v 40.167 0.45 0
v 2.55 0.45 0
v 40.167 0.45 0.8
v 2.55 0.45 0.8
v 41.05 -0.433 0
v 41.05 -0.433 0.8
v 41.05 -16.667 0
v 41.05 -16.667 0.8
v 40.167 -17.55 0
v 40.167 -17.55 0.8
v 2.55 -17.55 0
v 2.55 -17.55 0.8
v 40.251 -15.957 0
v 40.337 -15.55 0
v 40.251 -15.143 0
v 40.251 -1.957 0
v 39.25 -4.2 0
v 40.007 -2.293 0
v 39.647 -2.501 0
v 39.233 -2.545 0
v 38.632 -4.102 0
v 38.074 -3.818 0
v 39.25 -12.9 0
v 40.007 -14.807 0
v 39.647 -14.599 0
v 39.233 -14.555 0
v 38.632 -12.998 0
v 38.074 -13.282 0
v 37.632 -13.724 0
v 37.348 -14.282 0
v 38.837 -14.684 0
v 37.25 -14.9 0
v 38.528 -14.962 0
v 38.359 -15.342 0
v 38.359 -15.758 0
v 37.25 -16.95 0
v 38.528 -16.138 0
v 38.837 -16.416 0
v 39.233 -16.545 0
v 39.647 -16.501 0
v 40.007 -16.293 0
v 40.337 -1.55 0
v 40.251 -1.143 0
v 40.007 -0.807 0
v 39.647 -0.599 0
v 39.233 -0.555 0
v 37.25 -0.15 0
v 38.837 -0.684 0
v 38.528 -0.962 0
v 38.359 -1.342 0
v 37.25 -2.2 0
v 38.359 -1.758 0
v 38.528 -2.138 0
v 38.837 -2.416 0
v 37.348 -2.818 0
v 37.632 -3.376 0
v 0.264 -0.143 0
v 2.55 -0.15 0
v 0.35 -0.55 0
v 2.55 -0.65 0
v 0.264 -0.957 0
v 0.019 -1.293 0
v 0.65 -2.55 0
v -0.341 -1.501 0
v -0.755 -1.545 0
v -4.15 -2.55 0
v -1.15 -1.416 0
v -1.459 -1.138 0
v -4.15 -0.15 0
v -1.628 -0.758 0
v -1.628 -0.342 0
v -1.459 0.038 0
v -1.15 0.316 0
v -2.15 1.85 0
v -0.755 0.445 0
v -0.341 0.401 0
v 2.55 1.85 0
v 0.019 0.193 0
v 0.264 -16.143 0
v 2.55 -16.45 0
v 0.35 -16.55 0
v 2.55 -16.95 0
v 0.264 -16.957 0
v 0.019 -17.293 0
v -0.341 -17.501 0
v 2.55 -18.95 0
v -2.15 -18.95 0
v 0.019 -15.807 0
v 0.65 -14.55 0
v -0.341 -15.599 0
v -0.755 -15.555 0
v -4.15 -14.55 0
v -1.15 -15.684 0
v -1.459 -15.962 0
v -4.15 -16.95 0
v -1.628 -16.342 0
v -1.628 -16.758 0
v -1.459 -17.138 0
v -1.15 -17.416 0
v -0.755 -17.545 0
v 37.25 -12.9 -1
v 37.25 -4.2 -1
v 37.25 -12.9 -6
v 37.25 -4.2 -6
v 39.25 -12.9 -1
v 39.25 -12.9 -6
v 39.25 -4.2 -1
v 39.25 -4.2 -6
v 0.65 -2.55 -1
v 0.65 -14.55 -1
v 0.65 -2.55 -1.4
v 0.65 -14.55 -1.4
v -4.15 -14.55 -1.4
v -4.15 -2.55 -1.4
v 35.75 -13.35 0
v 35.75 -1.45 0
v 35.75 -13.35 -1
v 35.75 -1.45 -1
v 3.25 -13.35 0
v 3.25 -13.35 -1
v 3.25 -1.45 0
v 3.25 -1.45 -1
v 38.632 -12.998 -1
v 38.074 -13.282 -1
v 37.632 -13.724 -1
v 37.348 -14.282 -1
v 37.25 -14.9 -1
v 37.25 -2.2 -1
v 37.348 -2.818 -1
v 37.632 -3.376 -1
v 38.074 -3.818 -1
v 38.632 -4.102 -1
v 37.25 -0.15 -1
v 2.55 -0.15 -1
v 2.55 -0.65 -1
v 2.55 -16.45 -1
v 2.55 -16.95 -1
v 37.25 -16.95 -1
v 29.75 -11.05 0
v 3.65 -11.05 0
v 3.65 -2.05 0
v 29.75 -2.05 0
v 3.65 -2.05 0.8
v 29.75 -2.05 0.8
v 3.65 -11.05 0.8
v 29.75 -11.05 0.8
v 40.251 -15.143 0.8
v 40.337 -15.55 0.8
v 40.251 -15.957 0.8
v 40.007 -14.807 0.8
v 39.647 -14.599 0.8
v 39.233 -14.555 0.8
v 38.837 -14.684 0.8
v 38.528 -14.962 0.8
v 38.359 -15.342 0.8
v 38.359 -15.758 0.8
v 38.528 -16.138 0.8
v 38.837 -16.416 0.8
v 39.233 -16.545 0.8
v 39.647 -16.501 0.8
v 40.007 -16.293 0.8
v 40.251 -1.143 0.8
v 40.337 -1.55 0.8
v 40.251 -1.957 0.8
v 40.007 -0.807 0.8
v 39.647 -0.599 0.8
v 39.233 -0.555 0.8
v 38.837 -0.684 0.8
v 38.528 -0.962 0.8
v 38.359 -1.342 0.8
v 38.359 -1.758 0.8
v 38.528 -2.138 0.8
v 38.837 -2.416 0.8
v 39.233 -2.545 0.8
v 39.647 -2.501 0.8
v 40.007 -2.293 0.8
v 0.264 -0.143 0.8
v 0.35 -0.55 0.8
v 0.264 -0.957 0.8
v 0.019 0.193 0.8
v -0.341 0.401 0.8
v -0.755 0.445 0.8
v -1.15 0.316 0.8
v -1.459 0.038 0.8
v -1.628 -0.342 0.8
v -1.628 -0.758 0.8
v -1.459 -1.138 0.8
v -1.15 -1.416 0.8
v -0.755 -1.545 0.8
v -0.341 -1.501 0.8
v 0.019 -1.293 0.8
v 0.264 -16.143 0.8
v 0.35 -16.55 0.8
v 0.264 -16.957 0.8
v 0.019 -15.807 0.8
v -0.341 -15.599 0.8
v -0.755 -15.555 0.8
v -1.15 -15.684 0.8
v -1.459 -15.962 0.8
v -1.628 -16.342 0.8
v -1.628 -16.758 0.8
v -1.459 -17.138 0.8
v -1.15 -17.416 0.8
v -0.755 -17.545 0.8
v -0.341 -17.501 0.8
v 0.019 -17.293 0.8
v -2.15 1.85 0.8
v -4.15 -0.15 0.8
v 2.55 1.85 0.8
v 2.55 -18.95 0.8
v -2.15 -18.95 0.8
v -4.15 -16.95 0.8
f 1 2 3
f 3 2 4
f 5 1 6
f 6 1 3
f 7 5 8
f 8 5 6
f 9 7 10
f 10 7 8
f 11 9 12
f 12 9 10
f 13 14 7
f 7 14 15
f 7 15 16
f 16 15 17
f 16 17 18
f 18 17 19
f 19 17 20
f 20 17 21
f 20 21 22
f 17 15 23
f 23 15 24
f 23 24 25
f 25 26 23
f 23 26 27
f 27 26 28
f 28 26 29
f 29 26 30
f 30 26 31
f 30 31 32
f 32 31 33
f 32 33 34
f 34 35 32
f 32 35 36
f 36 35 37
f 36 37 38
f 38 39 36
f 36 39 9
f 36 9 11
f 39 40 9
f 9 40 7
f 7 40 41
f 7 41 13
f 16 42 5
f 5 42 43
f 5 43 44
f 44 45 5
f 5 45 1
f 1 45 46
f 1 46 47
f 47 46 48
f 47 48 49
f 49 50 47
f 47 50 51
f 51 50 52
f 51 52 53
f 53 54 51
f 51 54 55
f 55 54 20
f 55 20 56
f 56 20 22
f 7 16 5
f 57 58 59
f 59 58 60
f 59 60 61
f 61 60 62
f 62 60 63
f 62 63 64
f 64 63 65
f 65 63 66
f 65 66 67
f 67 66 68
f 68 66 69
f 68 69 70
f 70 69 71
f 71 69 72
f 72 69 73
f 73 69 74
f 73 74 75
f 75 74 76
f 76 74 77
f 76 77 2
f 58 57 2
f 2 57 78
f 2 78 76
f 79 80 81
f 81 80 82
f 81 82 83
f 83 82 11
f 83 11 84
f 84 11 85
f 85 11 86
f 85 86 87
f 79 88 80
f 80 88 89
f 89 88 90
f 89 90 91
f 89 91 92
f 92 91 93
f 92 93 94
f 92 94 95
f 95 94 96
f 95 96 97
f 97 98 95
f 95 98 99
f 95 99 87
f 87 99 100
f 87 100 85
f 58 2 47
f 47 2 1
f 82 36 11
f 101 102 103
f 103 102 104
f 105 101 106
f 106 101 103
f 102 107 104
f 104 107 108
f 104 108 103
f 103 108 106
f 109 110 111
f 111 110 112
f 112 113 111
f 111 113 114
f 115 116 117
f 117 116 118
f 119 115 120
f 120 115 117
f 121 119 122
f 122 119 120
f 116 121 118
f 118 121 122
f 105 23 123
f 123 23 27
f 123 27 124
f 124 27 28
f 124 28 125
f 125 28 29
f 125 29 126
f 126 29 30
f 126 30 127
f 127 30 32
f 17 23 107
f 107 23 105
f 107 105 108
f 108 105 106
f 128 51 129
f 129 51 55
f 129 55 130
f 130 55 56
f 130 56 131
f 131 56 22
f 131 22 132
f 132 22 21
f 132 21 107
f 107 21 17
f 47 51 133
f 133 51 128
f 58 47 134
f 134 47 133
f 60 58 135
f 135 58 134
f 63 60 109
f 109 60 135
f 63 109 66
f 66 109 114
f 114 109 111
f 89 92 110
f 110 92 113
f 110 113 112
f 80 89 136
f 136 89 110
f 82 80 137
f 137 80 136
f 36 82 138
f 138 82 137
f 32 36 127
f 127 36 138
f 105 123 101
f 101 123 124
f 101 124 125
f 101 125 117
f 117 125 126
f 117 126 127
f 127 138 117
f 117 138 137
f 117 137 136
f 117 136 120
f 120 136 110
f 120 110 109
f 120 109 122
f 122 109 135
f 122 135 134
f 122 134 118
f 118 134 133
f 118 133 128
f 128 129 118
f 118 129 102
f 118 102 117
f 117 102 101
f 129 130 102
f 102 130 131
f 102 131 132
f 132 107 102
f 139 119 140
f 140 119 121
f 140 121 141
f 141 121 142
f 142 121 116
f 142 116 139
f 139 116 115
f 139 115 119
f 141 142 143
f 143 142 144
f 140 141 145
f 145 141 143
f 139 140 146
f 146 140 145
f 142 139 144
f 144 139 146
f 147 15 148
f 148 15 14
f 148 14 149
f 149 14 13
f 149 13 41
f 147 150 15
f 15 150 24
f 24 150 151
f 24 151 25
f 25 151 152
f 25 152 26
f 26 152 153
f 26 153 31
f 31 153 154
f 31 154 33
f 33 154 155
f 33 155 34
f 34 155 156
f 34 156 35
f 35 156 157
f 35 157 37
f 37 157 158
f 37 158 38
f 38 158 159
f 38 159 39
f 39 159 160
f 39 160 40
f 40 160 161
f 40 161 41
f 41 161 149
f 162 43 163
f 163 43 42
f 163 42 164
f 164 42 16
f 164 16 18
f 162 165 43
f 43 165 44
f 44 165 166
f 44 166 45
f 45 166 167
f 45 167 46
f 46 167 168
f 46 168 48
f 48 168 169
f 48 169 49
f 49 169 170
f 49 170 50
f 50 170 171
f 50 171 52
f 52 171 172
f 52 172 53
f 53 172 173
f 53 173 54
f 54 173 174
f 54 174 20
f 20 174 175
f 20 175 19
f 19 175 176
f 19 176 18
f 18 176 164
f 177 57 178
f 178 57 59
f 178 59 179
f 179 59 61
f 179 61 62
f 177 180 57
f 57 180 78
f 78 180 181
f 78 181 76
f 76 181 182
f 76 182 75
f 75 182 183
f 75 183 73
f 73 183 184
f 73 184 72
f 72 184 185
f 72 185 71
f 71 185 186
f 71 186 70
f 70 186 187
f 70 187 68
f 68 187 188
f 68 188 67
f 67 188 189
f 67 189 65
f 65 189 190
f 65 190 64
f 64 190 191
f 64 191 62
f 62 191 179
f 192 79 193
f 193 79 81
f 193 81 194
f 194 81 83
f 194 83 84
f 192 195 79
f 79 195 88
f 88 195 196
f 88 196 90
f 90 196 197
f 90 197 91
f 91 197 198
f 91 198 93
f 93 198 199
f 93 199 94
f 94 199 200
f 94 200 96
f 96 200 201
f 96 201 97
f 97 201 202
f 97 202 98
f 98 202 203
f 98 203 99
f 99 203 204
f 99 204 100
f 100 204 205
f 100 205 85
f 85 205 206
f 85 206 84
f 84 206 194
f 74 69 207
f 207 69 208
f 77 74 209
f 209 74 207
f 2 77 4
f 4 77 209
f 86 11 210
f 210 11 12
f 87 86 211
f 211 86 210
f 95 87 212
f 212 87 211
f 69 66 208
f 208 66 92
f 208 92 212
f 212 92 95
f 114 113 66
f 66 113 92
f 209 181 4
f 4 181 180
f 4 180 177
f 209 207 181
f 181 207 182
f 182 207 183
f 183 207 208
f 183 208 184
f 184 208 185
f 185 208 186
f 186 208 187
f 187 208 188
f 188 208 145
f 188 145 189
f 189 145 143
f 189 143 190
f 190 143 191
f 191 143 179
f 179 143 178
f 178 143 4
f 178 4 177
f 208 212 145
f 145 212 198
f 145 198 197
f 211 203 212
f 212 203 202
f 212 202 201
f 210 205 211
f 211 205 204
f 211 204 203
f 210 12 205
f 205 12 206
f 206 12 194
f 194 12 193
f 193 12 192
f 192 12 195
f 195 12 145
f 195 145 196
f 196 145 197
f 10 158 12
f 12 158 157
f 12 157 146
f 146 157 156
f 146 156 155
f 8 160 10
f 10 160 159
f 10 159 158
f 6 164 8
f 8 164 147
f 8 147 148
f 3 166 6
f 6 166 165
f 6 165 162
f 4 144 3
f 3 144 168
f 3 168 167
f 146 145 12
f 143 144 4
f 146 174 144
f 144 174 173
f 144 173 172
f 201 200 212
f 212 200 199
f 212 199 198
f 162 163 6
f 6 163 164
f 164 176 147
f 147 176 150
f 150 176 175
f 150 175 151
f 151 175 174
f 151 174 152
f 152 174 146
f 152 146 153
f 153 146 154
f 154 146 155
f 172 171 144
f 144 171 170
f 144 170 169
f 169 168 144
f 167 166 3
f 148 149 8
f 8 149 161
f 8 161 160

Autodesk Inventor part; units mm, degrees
ref_plane "YZ Plane" through (0, 0, 0) normal (1, 0, 0) x (0, 1, 0)
ref_plane "XZ Plane" through (0, 0, 0) normal (0, 1, 0) x (-1, 0, 0)
ref_plane "XY Plane" through (0, 0, 0) normal (0, 0, 1) x (1, 0, 0)
sketch "Эскиз1" plane through (0, 0, 0) normal (0, 0, 1) x (1, 0, 0)
  line L0 (40.25, 0.65) -> (37.25, 0.65) projected
  line L1 (37.25, 0.65) -> (37.25, -2.2) projected
  arc A0 (37.25, -2.2) -> (39.25, -4.2) centre (39.25, -2.2) ccw projected
  line L2 (39.25, -4.2) -> (39.25, -12.9) projected
  arc A1 (39.25, -12.9) -> (37.25, -14.9) centre (39.25, -14.9) ccw projected
  line L3 (37.25, -14.9) -> (37.25, -17.75) projected
  line L4 (37.25, -17.75) -> (40.25, -17.75) projected
  line L5 (40.25, -17.75) -> (41.25, -16.75) projected
  line L6 (41.25, -16.75) -> (41.25, -0.35) projected
  line L7 (41.25, -0.35) -> (40.25, 0.65) projected
  circle A2 centre (39.3375, -15.55) radius 1 projected
  circle A3 centre (39.3375, -1.55) radius 1 projected
  line L8 (2.55, -18.95) -> (2.55, -17.75) projected
  line L9 (2.55, -17.75) -> (2.55, -16.45) projected
  line L10 (0.65, -14.55) -> (2.55, -16.45) projected
  line L11 (-4.15, -14.55) -> (0.65, -14.55) projected
  line L12 (-4.15, -14.55) -> (-4.15, -16.95) projected
  line L13 (-4.15, -16.95) -> (-2.15, -18.95) projected
  line L14 (-2.15, -18.95) -> (2.55, -18.95) projected
  circle A4 centre (-0.65, -16.55) radius 1 projected
  line L15 (2.55, 0.65) -> (2.55, 1.85) projected
  line L16 (2.55, 1.85) -> (-2.15, 1.85) projected
  line L17 (-2.15, 1.85) -> (-4.15, -0.15) projected
  line L18 (-4.15, -0.15) -> (-4.15, -2.55) projected
  line L19 (0.65, -2.55) -> (-4.15, -2.55) projected
  line L20 (2.55, -0.65) -> (0.65, -2.55) projected
  line L21 (2.55, -0.65) -> (2.55, 0.65) projected
  circle A5 centre (-0.65, -0.55) radius 1 projected
  line L22 (2.55, 0.65) -> (40.25, 0.65) projected
  line L23 (40.25, -17.75) -> (2.55, -17.75) projected
  line L24 (-4.15, -14.55) -> (-4.15, -2.55) projected
  point P0 (0, 0)
extrude "Выдавливание1" add sketch "Эскиз1" along normal blind 0.8
sketch "Эскиз2" plane through (0, 0, 0.8) normal (0, 0, 1) x (1, 0, 0)
  line L0 (3.65, -11.05) -> (29.75, -11.05)
  line L1 (29.75, -11.05) -> (29.75, -2.05)
  line L2 (29.75, -2.05) -> (3.65, -2.05)
  line L3 (3.65, -2.05) -> (3.65, -11.05)
  line L4 (40.25, 0.65) -> (2.55, 0.65) projected
  line L5 (41.25, -16.75) -> (41.25, -0.35) projected
  point P0 (0, 0)
  dimension "d2" = 9
  dimension "d3" = 26.1
  dimension "d4" = 2.7
  dimension "d5" = 11.5
extrude "Выдавливание2" cut sketch "Эскиз2" against normal through all
sketch "Эскиз3" plane through (0, 0, 0) normal (0, 0, -1) x (-1, 0, 0)
  line L0 (-40.25, 0.65) -> (-37.25, 0.65) projected
  line L1 (-37.25, 0.65) -> (-37.25, -2.2) projected
  arc A0 (-39.25, -4.2) -> (-37.25, -2.2) centre (-39.25, -2.2) ccw projected
  line L2 (-39.25, -4.2) -> (-39.25, -12.9) projected
  arc A1 (-37.25, -14.9) -> (-39.25, -12.9) centre (-39.25, -14.9) ccw projected
  line L3 (-37.25, -14.9) -> (-37.25, -17.75) projected
  line L4 (-37.25, -17.75) -> (-40.25, -17.75) projected
  line L5 (-40.25, -17.75) -> (-41.25, -16.75) projected
  line L6 (-41.25, -16.75) -> (-41.25, -0.35) projected
  line L7 (-41.25, -0.35) -> (-40.25, 0.65) projected
  circle A2 centre (-39.3375, -15.55) radius 1 projected
  circle A3 centre (-39.3375, -1.55) radius 1 projected
  line L8 (-2.55, 0.65) -> (-2.55, 1.85) projected
  line L9 (-2.55, 1.85) -> (2.15, 1.85) projected
  line L10 (2.15, 1.85) -> (4.15, -0.15) projected
  line L11 (4.15, -0.15) -> (4.15, -2.55) projected
  line L12 (-0.65, -2.55) -> (4.15, -2.55) projected
  line L13 (-2.55, -0.65) -> (-0.65, -2.55) projected
  line L14 (-2.55, -0.65) -> (-2.55, 0.65) projected
  circle A4 centre (0.65, -0.55) radius 1 projected
  line L15 (-2.55, -18.95) -> (-2.55, -17.75) projected
  line L16 (-2.55, -17.75) -> (-2.55, -16.45) projected
  line L17 (-0.65, -14.55) -> (-2.55, -16.45) projected
  line L18 (4.15, -14.55) -> (-0.65, -14.55) projected
  line L19 (4.15, -14.55) -> (4.15, -16.95) projected
  line L20 (4.15, -16.95) -> (2.15, -18.95) projected
  line L21 (2.15, -18.95) -> (-2.55, -18.95) projected
  circle A5 centre (0.65, -16.55) radius 1 projected
  line L22 (-2.55, -17.75) -> (-40.25, -17.75) projected
  line L23 (4.15, -2.55) -> (4.15, -14.55)
  line L24 (4.15, -0.15) -> (4.15, -16.95) projected
  line L25 (-3.25, -13.35) -> (-35.75, -13.35)
  line L26 (-35.75, -13.35) -> (-35.75, -1.45)
  line L27 (-35.75, -1.45) -> (-3.25, -1.45)
  line L28 (-3.25, -1.45) -> (-3.25, -13.35)
  line L29 (-29.75, -11.05) -> (-29.75, -2.05) projected
  line L30 (-3.65, -11.05) -> (-29.75, -11.05) projected
  line L31 (-3.65, -2.05) -> (-3.65, -11.05) projected
  line L32 (-29.75, -2.05) -> (-3.65, -2.05) projected
  line L33 (2.15, 1.85) -> (-43.25, 1.85) projected
  line L34 (-43.25, -18.95) -> (2.15, -18.95) projected
  line L35 (-37.25, -0.15) -> (-2.55, -0.15)
  line L36 (-37.25, -16.95) -> (-2.55, -16.95)
  point P0 (0, 0)
  dimension "d13" = 6
  dimension "d15" = 0.4
  dimension "d17" = 2.3
  dimension "d18" = 0.6
  dimension "d21" = 2
  dimension "d22" = 2
extrude "Выдавливание3" add sketch "Эскиз3" along normal blind 1 contours L35 L14 L13 L12 L23 L18 L17 L16 L36 L3 A1 L2 A0 L1
sketch "Эскиз4" plane through (0, 0, -1) normal (0, 0, -1) x (-1, 0, 0)
  line L0 (-0.65, -2.55) -> (4.15, -2.55) projected
  line L1 (-2.55, -16.45) -> (-0.65, -14.55) projected
  line L2 (4.15, -2.55) -> (-0.65, -2.55)
  line L3 (-0.65, -2.55) -> (-0.65, -14.55)
  line L4 (-0.65, -14.55) -> (4.15, -14.55)
  line L5 (4.15, -14.55) -> (4.15, -2.55)
  point P0 (0, 0)
extrude "Выдавливание4" add sketch "Эскиз4" along normal blind 0.4
sketch "Эскиз5" plane through (0, 0, -1) normal (0, 0, -1) x (-1, 0, 0)
  line L0 (-39.25, -4.2) -> (-39.25, -12.9) projected
  line L1 (-39.25, -4.2) -> (-37.25, -4.2)
  line L2 (-37.25, -4.2) -> (-37.25, -12.9)
  line L3 (-37.25, -12.9) -> (-39.25, -12.9)
  line L4 (-39.25, -12.9) -> (-39.25, -4.2)
  point P0 (0, 0)
  dimension "d25" = 2
extrude "Выдавливание5" add sketch "Эскиз5" along normal blind 5
sketch "Эскиз7" plane through (0, 0, 0.8) normal (0, 0, 1) x (1, 0, 0)
  line L0 (2.55, -17.75) -> (40.25, -17.75) projected
  line L1 (2.55, -17.75) -> (2.55, -17.55)
  line L2 (2.55, -17.55) -> (40.1672, -17.55)
  line L3 (40.1672, -17.55) -> (41.05, -16.6672)
  line L4 (41.05, -16.6672) -> (41.05, -8.55)
  line L5 (41.25, -16.75) -> (41.25, -0.35) projected
  line L6 (41.25, -8.55) -> (-4.15, -8.55)
  line L7 (-4.15, -0.15) -> (-4.15, -16.95) projected
  line L8 (40.25, -17.75) -> (41.25, -16.75) projected
  line L9 (2.55, 0.45) -> (40.1672, 0.45)
  line L10 (40.1672, 0.45) -> (41.05, -0.4328)
  line L11 (41.05, -0.4328) -> (41.05, -8.55)
  line L12 (35.75, -1.45) -> (35.75, -13.35) projected
  line L13 (29.75, -11.05) -> (3.65, -11.05) projected
  line L14 (3.65, -11.05) -> (3.65, -2.05) projected
  line L15 (3.65, -2.05) -> (29.75, -2.05) projected
  line L16 (29.75, -2.05) -> (29.75, -11.05) projected
  line L17 (-4.15, -0.15) -> (-4.15, -16.95) projected
  line L18 (-4.15, -16.95) -> (-2.15, -18.95) projected
  line L19 (-2.15, -18.95) -> (2.55, -18.95) projected
  line L20 (2.55, -18.95) -> (2.55, -17.75) projected
  line L21 (2.55, -17.75) -> (40.25, -17.75) projected
  line L22 (40.25, -17.75) -> (41.25, -16.75) projected
  line L23 (41.25, -16.75) -> (41.25, -0.35) projected
  line L24 (41.25, -0.35) -> (40.25, 0.65) projected
  line L25 (40.25, 0.65) -> (2.55, 0.65) projected
  line L26 (2.55, 0.65) -> (2.55, 1.85) projected
  line L27 (2.55, 1.85) -> (-2.15, 1.85) projected
  line L28 (-2.15, 1.85) -> (-4.15, -0.15) projected
  circle A0 centre (-0.65, -16.55) radius 1 projected
  circle A1 centre (-0.65, -0.55) radius 1 projected
  circle A2 centre (39.3375, -1.55) radius 1 projected
  circle A3 centre (39.3375, -15.55) radius 1 projected
  line L29 (2.55, 0.45) -> (2.55, 0.65)
  line L30 (40.25, 0.65) -> (2.55, 0.65) projected
  line L31 (2.55, 0.65) -> (40.25, 0.65)
  line L32 (41.25, -0.35) -> (40.25, 0.65) projected
  line L33 (40.25, 0.65) -> (41.25, -0.35)
  point P0 (0, 0)
  dimension "d33" = 0.2
  dimension "d34" = 0.2
  dimension "d35" = 0.2
extrude "Выдавливание7" cut sketch "Эскиз7" against normal through all contours L1 L2 L3 L4 L6 L5 L8 L0 | L6 L11 L10 L9 L29 L25 L24 L5
